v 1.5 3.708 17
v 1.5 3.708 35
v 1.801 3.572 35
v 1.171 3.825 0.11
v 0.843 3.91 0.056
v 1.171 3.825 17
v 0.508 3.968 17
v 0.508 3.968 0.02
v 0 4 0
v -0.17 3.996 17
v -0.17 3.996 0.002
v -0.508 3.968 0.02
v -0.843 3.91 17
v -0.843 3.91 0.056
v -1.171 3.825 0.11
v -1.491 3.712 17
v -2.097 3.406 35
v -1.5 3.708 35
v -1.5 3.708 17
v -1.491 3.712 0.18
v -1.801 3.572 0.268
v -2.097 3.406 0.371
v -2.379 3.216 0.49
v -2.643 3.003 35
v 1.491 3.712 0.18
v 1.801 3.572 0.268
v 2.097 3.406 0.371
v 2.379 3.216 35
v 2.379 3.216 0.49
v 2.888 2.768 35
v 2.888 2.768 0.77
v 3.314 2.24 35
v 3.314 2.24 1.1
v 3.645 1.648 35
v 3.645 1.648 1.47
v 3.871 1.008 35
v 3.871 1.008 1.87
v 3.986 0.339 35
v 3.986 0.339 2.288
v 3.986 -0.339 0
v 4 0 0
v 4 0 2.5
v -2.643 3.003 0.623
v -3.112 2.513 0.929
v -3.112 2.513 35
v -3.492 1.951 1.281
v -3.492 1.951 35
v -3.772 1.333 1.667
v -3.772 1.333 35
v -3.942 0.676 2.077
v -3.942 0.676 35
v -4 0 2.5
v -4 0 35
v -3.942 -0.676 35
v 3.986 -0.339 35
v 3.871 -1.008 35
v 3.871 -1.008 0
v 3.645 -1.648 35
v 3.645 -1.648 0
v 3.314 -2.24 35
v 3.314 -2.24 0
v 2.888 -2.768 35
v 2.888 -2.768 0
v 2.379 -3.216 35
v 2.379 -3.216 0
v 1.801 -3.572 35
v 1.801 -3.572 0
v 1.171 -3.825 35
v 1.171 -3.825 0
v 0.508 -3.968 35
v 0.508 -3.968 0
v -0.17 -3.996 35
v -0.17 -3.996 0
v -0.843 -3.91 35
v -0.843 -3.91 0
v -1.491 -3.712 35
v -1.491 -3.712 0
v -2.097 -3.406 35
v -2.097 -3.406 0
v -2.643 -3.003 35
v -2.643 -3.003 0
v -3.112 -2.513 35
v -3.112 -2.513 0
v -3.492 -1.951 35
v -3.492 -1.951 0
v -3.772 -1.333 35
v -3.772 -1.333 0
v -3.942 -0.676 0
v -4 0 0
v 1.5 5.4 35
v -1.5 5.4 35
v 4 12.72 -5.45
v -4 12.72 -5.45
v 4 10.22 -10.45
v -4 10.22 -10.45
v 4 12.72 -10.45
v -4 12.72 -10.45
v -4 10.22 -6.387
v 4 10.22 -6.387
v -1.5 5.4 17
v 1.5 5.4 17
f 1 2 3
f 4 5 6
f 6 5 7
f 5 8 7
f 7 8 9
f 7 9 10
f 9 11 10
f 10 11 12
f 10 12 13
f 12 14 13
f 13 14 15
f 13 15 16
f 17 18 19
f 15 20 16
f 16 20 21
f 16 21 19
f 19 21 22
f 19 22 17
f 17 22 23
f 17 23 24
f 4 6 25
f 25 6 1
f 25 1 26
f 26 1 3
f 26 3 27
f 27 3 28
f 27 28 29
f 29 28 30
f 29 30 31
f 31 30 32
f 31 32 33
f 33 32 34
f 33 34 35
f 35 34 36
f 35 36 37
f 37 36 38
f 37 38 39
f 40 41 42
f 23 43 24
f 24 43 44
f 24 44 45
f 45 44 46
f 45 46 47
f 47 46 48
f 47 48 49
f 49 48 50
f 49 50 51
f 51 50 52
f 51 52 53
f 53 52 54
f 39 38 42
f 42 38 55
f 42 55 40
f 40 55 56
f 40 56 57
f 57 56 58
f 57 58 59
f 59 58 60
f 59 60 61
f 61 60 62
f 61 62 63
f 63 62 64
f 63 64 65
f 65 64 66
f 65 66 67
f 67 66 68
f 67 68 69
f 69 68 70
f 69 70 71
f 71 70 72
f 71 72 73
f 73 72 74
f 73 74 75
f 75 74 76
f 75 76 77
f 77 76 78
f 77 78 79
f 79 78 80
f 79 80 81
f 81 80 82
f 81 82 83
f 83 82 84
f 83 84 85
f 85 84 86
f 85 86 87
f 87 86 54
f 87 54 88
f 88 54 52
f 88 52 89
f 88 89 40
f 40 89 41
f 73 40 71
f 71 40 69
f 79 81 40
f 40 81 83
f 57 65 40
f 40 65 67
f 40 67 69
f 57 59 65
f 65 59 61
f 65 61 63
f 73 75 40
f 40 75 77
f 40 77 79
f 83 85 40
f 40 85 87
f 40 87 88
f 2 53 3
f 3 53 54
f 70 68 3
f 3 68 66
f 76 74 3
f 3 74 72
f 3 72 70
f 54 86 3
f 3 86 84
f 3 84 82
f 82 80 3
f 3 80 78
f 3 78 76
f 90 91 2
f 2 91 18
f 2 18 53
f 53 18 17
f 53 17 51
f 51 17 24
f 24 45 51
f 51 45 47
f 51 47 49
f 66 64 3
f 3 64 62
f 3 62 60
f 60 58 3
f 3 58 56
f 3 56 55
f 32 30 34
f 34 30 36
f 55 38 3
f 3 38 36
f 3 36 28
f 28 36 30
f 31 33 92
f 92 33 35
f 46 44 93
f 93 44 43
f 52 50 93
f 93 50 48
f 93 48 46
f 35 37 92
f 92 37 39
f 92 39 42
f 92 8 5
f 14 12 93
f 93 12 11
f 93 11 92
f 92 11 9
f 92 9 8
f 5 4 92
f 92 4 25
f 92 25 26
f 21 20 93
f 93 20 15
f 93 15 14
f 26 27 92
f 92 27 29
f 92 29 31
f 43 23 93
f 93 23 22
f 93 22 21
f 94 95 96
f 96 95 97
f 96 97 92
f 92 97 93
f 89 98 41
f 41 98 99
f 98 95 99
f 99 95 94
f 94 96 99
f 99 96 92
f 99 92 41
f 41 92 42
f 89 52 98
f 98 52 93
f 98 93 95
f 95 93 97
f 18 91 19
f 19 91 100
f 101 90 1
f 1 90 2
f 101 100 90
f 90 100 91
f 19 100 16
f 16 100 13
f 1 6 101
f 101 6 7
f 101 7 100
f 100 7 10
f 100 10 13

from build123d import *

# Parameters (mm, degrees)
SKETCH1_R                = 4
BOSS_EXTRUDE1_DEPTH      = 35
BOSS_EXTRUDE2_DEPTH      = 4
BOSS_EXTRUDE2_DEPTH_BACK = 4
SKETCH4_W                = 3
SKETCH4_H                = 5.4
BOSS_EXTRUDE3_DEPTH      = 18


with BuildPart() as part:
    # Sketch1 → Boss-Extrude1 (new body)
    with BuildSketch(Plane.XY):
        Circle(SKETCH1_R)
    extrude(amount=BOSS_EXTRUDE1_DEPTH)

    # Sketch2 → Boss-Extrude2 (add, two sides)
    with BuildSketch(Plane(origin=(0, 0, 0), x_dir=(0, 0, -1), z_dir=(1, 0, 0))) as boss_extrude2_sk:
        Polygon((5.4499841, 12.71997456), (-2.5, 0), (0, 0), (6.3874841, 10.21997456), (10.4499841, 10.21997456), (10.4499841, 12.71997456), (7.9499841, 12.71997456), align=None)
    extrude(amount=BOSS_EXTRUDE2_DEPTH)
    extrude(boss_extrude2_sk.sketch, amount=-BOSS_EXTRUDE2_DEPTH_BACK)

    # Sketch4 → Boss-Extrude3 (add)
    with BuildSketch(Plane.XY.offset(35)):
        with Locations((0, 2.7)):
            Rectangle(SKETCH4_W, SKETCH4_H)
    extrude(amount=-BOSS_EXTRUDE3_DEPTH)


solid = part.part
